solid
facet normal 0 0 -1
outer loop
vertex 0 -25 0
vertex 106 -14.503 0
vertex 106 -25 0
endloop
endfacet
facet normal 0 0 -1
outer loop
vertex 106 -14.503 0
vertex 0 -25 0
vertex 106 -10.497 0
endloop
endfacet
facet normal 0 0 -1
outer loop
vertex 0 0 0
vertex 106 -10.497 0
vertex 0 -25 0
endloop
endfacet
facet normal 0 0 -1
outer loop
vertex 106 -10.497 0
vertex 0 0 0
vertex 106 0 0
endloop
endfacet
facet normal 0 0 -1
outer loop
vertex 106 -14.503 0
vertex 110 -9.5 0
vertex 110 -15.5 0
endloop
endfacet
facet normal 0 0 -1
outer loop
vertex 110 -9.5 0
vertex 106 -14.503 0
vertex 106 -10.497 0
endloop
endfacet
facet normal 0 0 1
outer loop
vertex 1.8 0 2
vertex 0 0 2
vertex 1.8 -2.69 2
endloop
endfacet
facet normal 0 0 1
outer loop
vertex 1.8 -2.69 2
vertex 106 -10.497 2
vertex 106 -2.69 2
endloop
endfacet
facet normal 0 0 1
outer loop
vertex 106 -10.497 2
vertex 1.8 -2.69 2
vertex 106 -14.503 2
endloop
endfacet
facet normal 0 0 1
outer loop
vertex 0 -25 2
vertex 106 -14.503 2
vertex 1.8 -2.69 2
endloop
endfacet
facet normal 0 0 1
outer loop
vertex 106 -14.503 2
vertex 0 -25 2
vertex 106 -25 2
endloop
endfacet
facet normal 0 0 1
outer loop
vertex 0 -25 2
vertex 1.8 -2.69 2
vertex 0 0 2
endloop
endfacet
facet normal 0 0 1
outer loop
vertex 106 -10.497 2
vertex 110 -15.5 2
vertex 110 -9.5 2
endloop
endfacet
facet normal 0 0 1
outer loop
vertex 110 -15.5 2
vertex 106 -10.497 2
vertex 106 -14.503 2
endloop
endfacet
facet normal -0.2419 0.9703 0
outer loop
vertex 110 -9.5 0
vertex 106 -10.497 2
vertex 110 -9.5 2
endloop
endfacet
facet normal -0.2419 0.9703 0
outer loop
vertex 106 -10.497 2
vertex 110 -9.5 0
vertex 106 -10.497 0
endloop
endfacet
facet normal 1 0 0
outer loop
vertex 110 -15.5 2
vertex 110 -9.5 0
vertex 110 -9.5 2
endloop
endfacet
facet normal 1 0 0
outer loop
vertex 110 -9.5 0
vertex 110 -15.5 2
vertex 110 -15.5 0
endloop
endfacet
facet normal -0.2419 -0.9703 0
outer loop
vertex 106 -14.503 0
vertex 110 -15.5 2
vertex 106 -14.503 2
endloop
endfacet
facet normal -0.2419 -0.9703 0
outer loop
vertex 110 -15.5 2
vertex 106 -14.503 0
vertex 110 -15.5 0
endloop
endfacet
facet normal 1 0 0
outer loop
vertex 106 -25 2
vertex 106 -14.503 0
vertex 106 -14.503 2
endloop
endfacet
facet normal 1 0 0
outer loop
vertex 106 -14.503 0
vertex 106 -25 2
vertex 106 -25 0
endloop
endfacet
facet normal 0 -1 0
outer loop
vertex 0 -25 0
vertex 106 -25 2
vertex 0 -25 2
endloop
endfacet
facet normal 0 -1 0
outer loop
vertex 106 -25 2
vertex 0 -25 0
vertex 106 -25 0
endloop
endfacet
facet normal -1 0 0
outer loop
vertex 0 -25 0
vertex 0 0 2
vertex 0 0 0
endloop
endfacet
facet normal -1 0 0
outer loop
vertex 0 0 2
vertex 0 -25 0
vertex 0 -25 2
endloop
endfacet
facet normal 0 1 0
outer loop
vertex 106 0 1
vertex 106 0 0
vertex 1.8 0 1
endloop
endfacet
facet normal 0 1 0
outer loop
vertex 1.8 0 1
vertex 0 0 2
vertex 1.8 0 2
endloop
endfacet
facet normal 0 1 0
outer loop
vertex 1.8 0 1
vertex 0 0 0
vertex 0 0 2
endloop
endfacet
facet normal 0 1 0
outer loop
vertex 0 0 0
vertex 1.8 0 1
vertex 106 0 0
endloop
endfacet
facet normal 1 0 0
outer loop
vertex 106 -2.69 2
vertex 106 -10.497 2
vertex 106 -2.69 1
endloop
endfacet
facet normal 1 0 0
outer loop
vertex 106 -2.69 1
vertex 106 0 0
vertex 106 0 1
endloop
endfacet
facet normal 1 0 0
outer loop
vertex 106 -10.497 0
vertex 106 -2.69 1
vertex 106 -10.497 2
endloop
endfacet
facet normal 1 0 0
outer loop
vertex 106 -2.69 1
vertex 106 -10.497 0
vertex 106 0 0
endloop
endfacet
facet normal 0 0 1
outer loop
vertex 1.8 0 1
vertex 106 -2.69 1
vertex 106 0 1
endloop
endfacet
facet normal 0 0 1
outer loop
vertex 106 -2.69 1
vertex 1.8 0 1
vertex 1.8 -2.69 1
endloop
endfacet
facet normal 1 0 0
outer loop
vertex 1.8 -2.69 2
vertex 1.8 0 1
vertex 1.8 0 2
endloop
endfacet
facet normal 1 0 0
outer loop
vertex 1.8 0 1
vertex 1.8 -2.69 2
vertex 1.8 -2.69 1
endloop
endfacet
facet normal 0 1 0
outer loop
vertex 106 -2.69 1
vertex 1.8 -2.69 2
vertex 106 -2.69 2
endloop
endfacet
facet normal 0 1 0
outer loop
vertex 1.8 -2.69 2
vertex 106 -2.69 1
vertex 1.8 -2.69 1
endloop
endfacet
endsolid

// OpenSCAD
// Floor_Tile_L.stl  -  Store Versile room frame (Rev C)
// Quantity: 1   Filament: Any colour (covered by the wood-grain sticker)
// Print: layer 0.2 mm, infill 15%, 2 walls, brim 0 mm, NO supports
// Orientation: flat  (as installed)
// Notes: Wood sticker on top after printing.
// The library draws parts with their front toward +Y; mirror([0,1,0]) makes the real
// part face the viewer correctly (see build.py). Edit dimensions in versile_parts.scad.
use <../versile_parts.scad>

mirror([0, 1, 0]) floor_tile(106, slot=[2,106], male_r=true);
